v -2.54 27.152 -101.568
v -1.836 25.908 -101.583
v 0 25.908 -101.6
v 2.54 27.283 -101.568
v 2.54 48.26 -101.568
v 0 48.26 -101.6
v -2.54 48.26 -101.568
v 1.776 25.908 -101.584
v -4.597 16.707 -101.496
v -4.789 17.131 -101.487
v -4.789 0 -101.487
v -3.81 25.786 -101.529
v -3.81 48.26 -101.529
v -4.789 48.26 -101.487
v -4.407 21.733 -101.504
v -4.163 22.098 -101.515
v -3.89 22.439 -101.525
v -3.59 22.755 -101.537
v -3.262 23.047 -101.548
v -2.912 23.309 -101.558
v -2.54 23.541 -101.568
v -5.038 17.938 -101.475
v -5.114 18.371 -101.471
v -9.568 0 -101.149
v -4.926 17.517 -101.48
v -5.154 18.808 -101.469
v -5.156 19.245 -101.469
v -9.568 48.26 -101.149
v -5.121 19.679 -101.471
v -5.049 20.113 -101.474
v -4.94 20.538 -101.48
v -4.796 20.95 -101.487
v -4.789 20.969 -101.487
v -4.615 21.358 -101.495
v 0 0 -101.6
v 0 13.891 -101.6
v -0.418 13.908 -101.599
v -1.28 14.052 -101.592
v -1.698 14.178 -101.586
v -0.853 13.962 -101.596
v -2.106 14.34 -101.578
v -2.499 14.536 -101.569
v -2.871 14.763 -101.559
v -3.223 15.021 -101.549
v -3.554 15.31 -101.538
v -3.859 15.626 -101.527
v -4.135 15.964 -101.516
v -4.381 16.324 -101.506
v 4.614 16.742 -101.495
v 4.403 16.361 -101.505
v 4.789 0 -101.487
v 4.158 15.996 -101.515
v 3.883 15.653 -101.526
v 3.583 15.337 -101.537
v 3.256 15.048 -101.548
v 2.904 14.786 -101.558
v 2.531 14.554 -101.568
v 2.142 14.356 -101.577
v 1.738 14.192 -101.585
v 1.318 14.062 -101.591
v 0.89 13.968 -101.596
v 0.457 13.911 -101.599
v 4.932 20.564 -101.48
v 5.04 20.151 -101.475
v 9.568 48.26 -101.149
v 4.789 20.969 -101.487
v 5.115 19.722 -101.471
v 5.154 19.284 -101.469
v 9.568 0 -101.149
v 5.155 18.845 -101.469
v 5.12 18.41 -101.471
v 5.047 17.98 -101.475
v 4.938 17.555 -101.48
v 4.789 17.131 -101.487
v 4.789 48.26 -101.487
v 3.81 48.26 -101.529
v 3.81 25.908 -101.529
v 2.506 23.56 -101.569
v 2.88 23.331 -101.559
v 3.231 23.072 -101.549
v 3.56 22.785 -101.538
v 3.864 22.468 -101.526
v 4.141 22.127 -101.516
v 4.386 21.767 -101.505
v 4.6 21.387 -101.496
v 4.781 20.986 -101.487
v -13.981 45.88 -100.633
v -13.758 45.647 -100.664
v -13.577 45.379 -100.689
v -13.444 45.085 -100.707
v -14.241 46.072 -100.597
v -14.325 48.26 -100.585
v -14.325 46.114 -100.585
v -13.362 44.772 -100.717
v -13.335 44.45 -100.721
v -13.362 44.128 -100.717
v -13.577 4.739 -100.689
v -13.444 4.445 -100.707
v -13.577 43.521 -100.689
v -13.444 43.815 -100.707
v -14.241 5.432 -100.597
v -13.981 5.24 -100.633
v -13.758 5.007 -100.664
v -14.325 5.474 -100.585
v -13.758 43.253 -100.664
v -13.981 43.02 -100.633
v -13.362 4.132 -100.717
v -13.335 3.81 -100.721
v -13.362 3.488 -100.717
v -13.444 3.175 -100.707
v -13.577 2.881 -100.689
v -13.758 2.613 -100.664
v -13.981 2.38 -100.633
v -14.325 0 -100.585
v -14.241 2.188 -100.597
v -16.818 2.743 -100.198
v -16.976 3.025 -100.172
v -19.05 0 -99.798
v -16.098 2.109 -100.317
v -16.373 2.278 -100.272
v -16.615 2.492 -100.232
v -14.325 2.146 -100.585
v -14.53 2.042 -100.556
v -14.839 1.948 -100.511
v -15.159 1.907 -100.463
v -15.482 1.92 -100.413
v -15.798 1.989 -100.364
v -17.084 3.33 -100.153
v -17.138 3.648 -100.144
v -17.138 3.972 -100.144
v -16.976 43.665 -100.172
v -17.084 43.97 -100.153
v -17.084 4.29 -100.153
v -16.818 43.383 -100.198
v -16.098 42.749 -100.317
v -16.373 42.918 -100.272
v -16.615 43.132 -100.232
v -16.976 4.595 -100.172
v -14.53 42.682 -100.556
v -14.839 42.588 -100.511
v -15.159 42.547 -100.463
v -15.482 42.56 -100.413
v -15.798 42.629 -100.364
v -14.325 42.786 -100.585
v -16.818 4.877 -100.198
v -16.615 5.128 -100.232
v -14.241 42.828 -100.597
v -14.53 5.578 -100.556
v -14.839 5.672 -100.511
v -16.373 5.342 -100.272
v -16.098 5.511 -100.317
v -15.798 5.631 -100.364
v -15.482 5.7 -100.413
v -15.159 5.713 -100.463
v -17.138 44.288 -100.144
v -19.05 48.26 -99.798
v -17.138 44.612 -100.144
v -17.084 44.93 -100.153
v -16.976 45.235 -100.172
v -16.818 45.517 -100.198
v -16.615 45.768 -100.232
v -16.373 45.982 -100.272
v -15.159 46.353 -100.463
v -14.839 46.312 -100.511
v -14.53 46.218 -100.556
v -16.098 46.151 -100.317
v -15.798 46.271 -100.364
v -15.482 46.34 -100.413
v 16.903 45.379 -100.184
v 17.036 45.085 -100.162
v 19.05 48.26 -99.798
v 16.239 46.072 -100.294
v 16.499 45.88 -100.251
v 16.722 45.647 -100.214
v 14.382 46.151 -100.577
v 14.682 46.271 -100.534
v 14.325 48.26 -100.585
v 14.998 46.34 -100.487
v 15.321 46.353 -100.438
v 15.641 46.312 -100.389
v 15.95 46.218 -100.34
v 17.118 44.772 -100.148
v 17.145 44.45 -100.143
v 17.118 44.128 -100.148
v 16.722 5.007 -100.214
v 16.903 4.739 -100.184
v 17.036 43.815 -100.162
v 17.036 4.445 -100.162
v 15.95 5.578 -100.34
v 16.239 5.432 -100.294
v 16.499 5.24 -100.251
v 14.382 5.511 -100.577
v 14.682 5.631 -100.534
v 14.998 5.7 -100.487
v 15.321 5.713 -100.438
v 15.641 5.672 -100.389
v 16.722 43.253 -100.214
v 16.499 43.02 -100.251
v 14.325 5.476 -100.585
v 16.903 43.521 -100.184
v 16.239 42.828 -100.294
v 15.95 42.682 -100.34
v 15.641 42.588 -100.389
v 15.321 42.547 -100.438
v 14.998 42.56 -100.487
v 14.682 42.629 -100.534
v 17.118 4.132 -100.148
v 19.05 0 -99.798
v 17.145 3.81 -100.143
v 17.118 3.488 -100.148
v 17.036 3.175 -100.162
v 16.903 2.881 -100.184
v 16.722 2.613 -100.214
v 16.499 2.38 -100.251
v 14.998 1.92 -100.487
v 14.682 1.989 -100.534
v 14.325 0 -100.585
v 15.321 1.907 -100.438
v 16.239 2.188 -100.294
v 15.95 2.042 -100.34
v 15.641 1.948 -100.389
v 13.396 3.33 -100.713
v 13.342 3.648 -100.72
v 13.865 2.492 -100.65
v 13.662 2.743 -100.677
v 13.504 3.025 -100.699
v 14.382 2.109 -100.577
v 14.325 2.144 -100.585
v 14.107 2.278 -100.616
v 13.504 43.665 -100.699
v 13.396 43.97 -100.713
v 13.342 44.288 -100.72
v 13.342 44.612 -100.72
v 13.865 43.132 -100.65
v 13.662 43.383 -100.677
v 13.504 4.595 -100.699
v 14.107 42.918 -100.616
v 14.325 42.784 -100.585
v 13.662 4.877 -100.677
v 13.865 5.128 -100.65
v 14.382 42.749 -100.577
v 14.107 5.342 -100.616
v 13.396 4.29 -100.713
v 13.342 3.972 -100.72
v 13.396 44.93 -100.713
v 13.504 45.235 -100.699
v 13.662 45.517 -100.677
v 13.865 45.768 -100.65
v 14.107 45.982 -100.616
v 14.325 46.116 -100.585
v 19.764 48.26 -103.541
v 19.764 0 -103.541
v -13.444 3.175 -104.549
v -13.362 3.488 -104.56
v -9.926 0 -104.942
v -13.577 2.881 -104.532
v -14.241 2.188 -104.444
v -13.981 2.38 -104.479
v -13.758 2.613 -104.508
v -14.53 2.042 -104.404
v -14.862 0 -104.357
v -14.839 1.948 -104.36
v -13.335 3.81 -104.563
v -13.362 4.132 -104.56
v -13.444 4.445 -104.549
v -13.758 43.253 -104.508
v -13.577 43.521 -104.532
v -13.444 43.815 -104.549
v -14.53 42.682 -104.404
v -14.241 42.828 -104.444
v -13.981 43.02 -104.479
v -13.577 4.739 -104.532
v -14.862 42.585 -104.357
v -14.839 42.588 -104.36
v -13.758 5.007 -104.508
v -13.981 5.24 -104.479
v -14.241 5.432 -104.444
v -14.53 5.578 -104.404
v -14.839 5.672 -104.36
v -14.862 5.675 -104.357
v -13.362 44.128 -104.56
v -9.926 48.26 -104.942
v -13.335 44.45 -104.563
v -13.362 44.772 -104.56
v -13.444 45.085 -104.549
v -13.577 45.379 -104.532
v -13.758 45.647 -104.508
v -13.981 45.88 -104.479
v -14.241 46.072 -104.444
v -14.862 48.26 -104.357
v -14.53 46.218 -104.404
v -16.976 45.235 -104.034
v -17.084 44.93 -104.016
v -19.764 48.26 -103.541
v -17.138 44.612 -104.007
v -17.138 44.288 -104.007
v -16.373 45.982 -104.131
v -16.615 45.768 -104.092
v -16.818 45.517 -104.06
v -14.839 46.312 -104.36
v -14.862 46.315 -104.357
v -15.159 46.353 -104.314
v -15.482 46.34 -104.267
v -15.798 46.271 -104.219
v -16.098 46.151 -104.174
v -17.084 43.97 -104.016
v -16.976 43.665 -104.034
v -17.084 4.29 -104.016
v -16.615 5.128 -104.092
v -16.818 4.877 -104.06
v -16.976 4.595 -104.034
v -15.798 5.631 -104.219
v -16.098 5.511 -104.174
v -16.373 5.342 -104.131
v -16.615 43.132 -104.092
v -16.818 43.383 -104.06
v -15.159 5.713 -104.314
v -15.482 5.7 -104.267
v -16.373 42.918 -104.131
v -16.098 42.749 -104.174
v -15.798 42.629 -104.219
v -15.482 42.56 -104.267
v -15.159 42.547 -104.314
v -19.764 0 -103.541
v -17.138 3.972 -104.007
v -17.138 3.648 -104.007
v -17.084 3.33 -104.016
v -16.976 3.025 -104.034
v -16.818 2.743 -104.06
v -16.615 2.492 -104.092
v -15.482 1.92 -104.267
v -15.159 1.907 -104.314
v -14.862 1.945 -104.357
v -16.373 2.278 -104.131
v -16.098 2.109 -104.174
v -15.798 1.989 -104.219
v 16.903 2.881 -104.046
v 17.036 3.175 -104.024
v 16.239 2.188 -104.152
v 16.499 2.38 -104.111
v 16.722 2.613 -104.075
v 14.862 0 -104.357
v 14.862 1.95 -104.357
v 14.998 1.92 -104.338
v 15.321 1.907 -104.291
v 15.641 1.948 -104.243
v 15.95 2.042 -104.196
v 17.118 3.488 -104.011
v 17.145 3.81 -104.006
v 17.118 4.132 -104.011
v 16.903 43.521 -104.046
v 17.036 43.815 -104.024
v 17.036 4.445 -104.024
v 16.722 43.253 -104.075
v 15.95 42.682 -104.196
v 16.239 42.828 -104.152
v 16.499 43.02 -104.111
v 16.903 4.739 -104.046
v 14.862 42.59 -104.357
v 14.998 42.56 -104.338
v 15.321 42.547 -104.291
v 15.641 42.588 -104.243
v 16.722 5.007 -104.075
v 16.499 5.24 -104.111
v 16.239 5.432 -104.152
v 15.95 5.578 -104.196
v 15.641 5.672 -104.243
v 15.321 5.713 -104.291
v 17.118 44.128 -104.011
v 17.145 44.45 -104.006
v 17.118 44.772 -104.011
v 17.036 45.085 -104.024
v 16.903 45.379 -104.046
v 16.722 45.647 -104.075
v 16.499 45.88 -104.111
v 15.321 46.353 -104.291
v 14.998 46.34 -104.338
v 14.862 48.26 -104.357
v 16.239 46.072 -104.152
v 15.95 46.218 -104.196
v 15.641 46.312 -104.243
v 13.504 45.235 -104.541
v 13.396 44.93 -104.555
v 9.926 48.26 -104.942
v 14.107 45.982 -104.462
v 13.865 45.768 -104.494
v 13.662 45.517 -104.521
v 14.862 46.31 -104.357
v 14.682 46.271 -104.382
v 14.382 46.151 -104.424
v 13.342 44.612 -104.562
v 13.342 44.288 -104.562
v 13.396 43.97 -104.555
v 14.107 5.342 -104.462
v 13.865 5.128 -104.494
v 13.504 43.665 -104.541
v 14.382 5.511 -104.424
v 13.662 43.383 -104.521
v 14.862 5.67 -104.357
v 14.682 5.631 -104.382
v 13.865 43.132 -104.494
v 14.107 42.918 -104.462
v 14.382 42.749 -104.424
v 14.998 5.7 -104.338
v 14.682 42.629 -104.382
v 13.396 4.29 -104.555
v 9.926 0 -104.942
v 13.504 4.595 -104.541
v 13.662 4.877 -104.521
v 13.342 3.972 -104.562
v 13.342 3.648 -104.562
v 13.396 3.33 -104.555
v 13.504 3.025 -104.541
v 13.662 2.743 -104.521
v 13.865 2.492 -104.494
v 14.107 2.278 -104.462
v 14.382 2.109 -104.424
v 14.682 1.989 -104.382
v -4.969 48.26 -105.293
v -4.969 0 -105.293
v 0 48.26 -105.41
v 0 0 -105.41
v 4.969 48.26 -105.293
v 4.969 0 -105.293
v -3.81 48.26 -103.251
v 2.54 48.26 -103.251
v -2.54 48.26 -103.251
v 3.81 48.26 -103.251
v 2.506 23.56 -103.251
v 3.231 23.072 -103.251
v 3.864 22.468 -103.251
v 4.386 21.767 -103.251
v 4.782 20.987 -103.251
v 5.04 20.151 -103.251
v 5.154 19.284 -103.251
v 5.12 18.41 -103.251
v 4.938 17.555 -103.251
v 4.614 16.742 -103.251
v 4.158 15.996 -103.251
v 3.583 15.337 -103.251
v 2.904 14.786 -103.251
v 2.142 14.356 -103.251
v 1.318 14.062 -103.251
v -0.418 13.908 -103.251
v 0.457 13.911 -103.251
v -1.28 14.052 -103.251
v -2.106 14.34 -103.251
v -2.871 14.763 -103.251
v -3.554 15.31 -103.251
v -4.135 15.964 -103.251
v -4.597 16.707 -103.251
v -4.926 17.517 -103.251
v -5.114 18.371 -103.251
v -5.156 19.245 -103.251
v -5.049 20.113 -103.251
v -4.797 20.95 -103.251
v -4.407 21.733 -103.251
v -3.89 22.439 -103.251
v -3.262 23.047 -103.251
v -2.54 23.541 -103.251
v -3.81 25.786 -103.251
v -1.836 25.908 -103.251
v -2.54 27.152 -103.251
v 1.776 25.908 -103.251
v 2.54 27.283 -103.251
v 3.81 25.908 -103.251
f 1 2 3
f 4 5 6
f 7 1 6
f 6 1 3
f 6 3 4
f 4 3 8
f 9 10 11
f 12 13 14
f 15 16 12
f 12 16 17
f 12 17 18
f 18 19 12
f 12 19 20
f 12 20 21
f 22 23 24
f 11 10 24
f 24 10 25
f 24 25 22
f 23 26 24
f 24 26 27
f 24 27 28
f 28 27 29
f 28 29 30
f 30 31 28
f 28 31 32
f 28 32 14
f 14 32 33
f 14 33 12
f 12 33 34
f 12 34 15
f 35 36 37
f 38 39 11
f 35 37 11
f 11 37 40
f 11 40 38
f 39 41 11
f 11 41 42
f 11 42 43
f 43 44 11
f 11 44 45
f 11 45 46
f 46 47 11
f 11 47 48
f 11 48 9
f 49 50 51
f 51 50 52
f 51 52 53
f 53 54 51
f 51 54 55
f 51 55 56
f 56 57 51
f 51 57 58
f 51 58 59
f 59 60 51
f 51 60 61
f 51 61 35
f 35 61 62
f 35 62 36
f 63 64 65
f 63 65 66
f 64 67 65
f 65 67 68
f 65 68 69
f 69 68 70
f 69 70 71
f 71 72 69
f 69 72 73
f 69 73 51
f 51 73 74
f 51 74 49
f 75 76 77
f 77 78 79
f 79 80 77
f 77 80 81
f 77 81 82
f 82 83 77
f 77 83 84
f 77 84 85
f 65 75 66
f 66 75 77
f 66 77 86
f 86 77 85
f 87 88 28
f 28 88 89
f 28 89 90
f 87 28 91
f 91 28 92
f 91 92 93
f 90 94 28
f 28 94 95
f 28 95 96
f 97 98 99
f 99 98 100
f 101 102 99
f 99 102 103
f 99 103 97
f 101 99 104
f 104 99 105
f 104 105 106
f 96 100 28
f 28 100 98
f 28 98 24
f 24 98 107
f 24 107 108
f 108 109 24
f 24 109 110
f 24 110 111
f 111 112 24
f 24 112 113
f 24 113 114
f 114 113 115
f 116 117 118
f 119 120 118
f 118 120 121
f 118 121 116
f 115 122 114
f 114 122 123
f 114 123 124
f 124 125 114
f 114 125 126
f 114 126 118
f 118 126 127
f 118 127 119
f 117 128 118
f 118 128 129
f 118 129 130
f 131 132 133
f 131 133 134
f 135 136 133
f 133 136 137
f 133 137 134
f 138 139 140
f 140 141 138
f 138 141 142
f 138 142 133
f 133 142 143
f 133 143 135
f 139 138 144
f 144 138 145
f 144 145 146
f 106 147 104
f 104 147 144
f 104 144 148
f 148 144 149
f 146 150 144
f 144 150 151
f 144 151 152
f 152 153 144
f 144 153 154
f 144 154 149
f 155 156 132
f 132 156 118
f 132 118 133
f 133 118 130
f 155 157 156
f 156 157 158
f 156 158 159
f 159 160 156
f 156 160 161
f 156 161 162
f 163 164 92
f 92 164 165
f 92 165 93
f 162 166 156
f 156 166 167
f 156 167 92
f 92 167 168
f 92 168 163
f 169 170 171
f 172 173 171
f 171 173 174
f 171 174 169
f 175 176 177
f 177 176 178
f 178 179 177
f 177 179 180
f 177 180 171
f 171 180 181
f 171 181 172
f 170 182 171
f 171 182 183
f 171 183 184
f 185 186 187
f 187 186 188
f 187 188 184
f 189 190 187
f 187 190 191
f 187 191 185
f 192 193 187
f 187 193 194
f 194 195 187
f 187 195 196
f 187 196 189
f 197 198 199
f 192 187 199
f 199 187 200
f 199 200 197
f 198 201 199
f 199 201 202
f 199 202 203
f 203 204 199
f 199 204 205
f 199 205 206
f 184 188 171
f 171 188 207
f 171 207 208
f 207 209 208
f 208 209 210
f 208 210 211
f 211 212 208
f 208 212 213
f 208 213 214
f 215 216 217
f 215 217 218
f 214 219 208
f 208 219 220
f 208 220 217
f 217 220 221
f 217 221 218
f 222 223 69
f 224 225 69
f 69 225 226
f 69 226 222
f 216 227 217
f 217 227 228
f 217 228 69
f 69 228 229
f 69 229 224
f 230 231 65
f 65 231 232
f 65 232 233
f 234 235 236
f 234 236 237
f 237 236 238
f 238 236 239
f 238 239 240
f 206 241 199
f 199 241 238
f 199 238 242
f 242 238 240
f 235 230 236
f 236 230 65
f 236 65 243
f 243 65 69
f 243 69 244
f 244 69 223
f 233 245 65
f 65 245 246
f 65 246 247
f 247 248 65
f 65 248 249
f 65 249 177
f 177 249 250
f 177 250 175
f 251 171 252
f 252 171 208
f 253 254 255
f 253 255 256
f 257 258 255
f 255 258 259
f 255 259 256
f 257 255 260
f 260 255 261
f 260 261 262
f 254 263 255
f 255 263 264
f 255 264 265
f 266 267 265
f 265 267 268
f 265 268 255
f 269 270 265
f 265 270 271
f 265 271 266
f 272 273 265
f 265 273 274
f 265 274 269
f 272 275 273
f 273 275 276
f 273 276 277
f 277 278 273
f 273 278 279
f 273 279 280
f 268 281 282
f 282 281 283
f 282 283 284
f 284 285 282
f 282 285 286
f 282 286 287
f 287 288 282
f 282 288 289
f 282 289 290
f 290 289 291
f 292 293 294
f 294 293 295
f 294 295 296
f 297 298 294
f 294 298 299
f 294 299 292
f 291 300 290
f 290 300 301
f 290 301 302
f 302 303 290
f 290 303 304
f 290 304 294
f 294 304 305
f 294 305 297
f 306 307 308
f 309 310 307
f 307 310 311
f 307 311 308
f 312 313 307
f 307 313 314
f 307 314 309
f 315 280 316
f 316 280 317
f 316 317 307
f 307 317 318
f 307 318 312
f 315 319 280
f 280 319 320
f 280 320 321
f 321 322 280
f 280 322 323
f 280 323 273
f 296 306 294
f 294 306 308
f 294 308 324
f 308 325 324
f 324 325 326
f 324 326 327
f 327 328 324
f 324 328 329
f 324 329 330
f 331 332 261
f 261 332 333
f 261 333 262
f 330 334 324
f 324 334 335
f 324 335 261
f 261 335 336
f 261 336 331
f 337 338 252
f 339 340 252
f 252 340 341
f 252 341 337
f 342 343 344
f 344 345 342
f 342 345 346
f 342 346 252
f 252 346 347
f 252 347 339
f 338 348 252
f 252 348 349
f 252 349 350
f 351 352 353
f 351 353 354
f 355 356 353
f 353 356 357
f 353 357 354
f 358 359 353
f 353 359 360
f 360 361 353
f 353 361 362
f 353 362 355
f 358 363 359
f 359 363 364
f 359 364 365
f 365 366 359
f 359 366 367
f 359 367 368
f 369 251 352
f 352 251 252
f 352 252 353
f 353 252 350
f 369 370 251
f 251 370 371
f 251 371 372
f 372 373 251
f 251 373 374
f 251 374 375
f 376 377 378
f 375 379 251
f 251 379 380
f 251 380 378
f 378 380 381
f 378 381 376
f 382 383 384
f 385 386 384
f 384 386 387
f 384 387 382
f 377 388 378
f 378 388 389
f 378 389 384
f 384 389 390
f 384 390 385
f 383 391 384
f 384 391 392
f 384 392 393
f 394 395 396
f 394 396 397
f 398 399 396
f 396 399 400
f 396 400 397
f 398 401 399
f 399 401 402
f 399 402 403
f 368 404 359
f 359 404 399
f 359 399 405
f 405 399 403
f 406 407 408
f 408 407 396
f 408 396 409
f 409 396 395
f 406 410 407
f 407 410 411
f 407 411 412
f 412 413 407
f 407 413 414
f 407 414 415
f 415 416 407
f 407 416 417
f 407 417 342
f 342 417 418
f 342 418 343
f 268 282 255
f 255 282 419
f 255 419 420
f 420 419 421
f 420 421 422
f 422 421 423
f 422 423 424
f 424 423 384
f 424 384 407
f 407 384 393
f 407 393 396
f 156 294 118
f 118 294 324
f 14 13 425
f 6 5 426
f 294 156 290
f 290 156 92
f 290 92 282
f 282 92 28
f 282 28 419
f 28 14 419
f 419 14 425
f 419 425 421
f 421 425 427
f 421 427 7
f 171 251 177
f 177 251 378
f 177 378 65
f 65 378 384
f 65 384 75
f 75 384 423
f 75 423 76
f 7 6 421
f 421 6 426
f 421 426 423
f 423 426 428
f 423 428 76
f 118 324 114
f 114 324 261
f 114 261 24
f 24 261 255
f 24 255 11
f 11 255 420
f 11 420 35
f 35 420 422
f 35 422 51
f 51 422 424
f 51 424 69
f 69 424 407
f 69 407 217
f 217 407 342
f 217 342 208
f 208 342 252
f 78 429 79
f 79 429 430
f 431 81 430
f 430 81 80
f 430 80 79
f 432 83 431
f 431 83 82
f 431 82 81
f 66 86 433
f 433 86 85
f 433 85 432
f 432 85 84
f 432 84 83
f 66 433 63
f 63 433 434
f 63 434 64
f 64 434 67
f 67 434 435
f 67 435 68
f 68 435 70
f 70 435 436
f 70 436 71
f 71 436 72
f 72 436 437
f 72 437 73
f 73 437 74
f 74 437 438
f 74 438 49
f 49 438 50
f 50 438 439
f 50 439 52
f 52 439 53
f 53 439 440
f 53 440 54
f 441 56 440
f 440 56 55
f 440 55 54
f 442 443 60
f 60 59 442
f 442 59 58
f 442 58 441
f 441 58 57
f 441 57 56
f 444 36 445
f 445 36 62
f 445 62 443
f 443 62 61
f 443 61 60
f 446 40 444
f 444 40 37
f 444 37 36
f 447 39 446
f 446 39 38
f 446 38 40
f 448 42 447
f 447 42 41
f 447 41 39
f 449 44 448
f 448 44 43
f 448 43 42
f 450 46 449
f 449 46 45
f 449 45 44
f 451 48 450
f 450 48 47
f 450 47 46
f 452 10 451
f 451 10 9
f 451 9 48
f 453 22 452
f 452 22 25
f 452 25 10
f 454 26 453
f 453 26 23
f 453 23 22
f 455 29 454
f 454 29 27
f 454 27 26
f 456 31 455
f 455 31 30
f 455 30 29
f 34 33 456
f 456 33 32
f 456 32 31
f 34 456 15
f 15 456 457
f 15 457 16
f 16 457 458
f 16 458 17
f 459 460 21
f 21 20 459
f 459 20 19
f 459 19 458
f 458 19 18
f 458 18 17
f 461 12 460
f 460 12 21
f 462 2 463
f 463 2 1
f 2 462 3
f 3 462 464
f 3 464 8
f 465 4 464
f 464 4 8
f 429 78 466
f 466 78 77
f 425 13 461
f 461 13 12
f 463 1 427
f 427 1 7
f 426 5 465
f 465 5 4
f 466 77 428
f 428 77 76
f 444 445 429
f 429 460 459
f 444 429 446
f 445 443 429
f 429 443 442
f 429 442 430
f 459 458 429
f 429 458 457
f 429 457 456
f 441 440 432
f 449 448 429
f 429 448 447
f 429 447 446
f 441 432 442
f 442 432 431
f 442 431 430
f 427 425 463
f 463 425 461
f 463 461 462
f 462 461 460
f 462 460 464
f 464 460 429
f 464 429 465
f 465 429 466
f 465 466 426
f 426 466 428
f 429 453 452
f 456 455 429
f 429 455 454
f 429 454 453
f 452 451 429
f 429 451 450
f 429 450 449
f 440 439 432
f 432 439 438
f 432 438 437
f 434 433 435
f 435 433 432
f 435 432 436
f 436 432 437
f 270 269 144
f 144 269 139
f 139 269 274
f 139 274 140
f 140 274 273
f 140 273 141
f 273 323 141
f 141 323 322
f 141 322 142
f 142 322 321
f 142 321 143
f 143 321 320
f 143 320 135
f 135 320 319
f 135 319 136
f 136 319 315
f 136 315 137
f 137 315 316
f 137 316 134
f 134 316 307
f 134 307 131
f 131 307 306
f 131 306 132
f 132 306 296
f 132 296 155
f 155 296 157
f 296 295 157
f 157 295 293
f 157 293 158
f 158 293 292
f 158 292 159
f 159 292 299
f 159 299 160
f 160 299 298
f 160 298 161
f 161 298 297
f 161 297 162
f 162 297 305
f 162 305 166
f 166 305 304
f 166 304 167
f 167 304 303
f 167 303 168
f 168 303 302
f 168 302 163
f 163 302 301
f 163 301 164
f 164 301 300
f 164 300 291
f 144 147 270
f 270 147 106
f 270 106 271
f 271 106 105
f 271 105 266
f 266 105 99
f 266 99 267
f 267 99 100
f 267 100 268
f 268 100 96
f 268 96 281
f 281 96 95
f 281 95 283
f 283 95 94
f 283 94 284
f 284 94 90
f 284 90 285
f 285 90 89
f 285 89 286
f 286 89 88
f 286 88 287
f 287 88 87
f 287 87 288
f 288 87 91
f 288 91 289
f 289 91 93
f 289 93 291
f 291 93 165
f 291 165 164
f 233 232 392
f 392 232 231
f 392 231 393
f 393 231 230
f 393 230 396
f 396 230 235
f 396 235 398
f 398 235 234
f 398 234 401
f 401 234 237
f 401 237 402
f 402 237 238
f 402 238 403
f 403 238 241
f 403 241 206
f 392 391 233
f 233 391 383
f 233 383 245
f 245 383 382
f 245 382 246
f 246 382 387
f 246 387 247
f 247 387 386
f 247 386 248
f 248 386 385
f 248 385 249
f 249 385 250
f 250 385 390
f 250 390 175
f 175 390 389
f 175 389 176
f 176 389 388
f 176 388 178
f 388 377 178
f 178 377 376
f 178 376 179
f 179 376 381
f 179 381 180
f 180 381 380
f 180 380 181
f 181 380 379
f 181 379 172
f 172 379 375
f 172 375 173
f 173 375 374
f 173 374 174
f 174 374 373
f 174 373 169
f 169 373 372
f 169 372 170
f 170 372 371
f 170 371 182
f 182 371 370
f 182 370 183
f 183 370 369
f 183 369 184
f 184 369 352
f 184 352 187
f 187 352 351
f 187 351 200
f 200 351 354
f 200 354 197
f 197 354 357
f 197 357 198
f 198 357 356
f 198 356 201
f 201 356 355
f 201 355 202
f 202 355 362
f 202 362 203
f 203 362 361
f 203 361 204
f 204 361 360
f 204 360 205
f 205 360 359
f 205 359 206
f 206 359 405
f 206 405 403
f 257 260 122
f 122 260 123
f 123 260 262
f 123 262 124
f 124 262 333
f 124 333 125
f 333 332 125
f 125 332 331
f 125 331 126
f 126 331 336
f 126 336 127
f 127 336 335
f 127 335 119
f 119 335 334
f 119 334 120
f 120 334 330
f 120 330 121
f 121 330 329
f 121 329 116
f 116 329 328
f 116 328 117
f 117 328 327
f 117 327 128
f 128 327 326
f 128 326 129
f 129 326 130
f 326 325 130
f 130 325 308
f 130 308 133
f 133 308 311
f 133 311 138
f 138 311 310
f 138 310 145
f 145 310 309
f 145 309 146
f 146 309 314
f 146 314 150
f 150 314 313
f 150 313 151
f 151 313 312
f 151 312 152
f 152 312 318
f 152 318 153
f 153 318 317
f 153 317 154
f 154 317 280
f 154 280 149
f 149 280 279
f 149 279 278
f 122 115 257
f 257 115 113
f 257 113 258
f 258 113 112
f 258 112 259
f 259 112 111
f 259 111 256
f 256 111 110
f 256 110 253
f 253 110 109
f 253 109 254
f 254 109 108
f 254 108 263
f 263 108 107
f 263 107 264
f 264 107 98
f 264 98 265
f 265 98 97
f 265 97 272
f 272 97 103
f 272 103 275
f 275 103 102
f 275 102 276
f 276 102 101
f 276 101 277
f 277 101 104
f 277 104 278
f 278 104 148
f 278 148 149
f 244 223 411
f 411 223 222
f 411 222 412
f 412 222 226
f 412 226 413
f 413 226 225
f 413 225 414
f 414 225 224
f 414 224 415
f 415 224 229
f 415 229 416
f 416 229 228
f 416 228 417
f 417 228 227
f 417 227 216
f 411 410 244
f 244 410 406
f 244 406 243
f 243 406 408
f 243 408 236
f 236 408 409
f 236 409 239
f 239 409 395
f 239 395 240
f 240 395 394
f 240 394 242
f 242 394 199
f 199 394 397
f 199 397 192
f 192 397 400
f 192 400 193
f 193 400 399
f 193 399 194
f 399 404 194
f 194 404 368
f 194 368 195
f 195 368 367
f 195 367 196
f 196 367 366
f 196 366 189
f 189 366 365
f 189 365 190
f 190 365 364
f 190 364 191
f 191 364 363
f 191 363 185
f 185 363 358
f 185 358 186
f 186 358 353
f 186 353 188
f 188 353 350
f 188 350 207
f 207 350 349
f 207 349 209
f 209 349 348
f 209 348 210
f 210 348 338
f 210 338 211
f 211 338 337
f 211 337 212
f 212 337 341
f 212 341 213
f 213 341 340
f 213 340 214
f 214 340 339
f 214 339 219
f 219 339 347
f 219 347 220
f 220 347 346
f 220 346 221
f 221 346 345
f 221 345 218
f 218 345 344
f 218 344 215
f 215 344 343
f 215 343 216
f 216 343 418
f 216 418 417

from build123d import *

# Parameters (mm, degrees)
BOSS_EXTRUDE1_DEPTH = 48.26
CUT_EXTRUDE1_DEPTH  = 103.251
SKETCH3_R           = 1.905
CUT_EXTRUDE2_DEPTH  = 118.604958351


with BuildPart() as part:
    # Sketch1 → Boss-Extrude1 (new body)
    with BuildSketch(Plane(origin=(0, 0, 0), x_dir=(1, 0, 0), z_dir=(0, 1, 0))):
        with BuildLine():
            Line((-19.05, 99.798083649), (-19.764375, 103.540511786))
            ThreePointArc((-19.764375, 103.540511786), (0, 105.41), (19.764375, 103.540511786))
            Line((19.764375, 103.540511786), (19.05, 99.798083649))
            ThreePointArc((19.05, 99.798083649), (0, 101.6), (-19.05, 99.798083649))
        make_face()
    extrude(amount=BOSS_EXTRUDE1_DEPTH)

    # Sketch2 → Cut-Extrude1 (cut)
    with BuildSketch(Plane.XY):
        with BuildLine():
            Line((-2.54, 23.540829588), (-3.81, 25.786244382))
            Line((-3.81, 25.786244382), (-3.81, 48.26))
            Line((-3.81, 48.26), (-2.54, 48.26))
            Line((-2.54, 48.26), (-2.54, 27.152392088))
            Line((-2.54, 27.152392088), (-1.836175497, 25.908))
            Line((-1.836175497, 25.908), (1.776041068, 25.908))
            Line((1.776041068, 25.908), (2.54, 27.283126078))
            Line((2.54, 27.283126078), (2.54, 48.26))
            Line((2.54, 48.26), (3.81, 48.26))
            Line((3.81, 48.26), (3.81, 25.908))
            Line((3.81, 25.908), (2.505613998, 23.560105196))
            ThreePointArc((2.505613998, 23.560105196), (0.019710062, 13.890662649), (-2.54, 23.540829588))
        make_face()
    extrude(amount=-CUT_EXTRUDE1_DEPTH, mode=Mode.SUBTRACT)

    # Sketch3 → Cut-Extrude2 (cut, through all)
    with BuildSketch(Plane.XY):
        with Locations((-15.24, 44.45)):
            Circle(SKETCH3_R)
        with Locations((15.24, 44.45)):
            Circle(SKETCH3_R)
        with Locations((-15.24, 3.81)):
            Circle(SKETCH3_R)
        with Locations((15.24, 3.81)):
            Circle(SKETCH3_R)
    extrude(amount=-CUT_EXTRUDE2_DEPTH, mode=Mode.SUBTRACT)


solid = part.part
